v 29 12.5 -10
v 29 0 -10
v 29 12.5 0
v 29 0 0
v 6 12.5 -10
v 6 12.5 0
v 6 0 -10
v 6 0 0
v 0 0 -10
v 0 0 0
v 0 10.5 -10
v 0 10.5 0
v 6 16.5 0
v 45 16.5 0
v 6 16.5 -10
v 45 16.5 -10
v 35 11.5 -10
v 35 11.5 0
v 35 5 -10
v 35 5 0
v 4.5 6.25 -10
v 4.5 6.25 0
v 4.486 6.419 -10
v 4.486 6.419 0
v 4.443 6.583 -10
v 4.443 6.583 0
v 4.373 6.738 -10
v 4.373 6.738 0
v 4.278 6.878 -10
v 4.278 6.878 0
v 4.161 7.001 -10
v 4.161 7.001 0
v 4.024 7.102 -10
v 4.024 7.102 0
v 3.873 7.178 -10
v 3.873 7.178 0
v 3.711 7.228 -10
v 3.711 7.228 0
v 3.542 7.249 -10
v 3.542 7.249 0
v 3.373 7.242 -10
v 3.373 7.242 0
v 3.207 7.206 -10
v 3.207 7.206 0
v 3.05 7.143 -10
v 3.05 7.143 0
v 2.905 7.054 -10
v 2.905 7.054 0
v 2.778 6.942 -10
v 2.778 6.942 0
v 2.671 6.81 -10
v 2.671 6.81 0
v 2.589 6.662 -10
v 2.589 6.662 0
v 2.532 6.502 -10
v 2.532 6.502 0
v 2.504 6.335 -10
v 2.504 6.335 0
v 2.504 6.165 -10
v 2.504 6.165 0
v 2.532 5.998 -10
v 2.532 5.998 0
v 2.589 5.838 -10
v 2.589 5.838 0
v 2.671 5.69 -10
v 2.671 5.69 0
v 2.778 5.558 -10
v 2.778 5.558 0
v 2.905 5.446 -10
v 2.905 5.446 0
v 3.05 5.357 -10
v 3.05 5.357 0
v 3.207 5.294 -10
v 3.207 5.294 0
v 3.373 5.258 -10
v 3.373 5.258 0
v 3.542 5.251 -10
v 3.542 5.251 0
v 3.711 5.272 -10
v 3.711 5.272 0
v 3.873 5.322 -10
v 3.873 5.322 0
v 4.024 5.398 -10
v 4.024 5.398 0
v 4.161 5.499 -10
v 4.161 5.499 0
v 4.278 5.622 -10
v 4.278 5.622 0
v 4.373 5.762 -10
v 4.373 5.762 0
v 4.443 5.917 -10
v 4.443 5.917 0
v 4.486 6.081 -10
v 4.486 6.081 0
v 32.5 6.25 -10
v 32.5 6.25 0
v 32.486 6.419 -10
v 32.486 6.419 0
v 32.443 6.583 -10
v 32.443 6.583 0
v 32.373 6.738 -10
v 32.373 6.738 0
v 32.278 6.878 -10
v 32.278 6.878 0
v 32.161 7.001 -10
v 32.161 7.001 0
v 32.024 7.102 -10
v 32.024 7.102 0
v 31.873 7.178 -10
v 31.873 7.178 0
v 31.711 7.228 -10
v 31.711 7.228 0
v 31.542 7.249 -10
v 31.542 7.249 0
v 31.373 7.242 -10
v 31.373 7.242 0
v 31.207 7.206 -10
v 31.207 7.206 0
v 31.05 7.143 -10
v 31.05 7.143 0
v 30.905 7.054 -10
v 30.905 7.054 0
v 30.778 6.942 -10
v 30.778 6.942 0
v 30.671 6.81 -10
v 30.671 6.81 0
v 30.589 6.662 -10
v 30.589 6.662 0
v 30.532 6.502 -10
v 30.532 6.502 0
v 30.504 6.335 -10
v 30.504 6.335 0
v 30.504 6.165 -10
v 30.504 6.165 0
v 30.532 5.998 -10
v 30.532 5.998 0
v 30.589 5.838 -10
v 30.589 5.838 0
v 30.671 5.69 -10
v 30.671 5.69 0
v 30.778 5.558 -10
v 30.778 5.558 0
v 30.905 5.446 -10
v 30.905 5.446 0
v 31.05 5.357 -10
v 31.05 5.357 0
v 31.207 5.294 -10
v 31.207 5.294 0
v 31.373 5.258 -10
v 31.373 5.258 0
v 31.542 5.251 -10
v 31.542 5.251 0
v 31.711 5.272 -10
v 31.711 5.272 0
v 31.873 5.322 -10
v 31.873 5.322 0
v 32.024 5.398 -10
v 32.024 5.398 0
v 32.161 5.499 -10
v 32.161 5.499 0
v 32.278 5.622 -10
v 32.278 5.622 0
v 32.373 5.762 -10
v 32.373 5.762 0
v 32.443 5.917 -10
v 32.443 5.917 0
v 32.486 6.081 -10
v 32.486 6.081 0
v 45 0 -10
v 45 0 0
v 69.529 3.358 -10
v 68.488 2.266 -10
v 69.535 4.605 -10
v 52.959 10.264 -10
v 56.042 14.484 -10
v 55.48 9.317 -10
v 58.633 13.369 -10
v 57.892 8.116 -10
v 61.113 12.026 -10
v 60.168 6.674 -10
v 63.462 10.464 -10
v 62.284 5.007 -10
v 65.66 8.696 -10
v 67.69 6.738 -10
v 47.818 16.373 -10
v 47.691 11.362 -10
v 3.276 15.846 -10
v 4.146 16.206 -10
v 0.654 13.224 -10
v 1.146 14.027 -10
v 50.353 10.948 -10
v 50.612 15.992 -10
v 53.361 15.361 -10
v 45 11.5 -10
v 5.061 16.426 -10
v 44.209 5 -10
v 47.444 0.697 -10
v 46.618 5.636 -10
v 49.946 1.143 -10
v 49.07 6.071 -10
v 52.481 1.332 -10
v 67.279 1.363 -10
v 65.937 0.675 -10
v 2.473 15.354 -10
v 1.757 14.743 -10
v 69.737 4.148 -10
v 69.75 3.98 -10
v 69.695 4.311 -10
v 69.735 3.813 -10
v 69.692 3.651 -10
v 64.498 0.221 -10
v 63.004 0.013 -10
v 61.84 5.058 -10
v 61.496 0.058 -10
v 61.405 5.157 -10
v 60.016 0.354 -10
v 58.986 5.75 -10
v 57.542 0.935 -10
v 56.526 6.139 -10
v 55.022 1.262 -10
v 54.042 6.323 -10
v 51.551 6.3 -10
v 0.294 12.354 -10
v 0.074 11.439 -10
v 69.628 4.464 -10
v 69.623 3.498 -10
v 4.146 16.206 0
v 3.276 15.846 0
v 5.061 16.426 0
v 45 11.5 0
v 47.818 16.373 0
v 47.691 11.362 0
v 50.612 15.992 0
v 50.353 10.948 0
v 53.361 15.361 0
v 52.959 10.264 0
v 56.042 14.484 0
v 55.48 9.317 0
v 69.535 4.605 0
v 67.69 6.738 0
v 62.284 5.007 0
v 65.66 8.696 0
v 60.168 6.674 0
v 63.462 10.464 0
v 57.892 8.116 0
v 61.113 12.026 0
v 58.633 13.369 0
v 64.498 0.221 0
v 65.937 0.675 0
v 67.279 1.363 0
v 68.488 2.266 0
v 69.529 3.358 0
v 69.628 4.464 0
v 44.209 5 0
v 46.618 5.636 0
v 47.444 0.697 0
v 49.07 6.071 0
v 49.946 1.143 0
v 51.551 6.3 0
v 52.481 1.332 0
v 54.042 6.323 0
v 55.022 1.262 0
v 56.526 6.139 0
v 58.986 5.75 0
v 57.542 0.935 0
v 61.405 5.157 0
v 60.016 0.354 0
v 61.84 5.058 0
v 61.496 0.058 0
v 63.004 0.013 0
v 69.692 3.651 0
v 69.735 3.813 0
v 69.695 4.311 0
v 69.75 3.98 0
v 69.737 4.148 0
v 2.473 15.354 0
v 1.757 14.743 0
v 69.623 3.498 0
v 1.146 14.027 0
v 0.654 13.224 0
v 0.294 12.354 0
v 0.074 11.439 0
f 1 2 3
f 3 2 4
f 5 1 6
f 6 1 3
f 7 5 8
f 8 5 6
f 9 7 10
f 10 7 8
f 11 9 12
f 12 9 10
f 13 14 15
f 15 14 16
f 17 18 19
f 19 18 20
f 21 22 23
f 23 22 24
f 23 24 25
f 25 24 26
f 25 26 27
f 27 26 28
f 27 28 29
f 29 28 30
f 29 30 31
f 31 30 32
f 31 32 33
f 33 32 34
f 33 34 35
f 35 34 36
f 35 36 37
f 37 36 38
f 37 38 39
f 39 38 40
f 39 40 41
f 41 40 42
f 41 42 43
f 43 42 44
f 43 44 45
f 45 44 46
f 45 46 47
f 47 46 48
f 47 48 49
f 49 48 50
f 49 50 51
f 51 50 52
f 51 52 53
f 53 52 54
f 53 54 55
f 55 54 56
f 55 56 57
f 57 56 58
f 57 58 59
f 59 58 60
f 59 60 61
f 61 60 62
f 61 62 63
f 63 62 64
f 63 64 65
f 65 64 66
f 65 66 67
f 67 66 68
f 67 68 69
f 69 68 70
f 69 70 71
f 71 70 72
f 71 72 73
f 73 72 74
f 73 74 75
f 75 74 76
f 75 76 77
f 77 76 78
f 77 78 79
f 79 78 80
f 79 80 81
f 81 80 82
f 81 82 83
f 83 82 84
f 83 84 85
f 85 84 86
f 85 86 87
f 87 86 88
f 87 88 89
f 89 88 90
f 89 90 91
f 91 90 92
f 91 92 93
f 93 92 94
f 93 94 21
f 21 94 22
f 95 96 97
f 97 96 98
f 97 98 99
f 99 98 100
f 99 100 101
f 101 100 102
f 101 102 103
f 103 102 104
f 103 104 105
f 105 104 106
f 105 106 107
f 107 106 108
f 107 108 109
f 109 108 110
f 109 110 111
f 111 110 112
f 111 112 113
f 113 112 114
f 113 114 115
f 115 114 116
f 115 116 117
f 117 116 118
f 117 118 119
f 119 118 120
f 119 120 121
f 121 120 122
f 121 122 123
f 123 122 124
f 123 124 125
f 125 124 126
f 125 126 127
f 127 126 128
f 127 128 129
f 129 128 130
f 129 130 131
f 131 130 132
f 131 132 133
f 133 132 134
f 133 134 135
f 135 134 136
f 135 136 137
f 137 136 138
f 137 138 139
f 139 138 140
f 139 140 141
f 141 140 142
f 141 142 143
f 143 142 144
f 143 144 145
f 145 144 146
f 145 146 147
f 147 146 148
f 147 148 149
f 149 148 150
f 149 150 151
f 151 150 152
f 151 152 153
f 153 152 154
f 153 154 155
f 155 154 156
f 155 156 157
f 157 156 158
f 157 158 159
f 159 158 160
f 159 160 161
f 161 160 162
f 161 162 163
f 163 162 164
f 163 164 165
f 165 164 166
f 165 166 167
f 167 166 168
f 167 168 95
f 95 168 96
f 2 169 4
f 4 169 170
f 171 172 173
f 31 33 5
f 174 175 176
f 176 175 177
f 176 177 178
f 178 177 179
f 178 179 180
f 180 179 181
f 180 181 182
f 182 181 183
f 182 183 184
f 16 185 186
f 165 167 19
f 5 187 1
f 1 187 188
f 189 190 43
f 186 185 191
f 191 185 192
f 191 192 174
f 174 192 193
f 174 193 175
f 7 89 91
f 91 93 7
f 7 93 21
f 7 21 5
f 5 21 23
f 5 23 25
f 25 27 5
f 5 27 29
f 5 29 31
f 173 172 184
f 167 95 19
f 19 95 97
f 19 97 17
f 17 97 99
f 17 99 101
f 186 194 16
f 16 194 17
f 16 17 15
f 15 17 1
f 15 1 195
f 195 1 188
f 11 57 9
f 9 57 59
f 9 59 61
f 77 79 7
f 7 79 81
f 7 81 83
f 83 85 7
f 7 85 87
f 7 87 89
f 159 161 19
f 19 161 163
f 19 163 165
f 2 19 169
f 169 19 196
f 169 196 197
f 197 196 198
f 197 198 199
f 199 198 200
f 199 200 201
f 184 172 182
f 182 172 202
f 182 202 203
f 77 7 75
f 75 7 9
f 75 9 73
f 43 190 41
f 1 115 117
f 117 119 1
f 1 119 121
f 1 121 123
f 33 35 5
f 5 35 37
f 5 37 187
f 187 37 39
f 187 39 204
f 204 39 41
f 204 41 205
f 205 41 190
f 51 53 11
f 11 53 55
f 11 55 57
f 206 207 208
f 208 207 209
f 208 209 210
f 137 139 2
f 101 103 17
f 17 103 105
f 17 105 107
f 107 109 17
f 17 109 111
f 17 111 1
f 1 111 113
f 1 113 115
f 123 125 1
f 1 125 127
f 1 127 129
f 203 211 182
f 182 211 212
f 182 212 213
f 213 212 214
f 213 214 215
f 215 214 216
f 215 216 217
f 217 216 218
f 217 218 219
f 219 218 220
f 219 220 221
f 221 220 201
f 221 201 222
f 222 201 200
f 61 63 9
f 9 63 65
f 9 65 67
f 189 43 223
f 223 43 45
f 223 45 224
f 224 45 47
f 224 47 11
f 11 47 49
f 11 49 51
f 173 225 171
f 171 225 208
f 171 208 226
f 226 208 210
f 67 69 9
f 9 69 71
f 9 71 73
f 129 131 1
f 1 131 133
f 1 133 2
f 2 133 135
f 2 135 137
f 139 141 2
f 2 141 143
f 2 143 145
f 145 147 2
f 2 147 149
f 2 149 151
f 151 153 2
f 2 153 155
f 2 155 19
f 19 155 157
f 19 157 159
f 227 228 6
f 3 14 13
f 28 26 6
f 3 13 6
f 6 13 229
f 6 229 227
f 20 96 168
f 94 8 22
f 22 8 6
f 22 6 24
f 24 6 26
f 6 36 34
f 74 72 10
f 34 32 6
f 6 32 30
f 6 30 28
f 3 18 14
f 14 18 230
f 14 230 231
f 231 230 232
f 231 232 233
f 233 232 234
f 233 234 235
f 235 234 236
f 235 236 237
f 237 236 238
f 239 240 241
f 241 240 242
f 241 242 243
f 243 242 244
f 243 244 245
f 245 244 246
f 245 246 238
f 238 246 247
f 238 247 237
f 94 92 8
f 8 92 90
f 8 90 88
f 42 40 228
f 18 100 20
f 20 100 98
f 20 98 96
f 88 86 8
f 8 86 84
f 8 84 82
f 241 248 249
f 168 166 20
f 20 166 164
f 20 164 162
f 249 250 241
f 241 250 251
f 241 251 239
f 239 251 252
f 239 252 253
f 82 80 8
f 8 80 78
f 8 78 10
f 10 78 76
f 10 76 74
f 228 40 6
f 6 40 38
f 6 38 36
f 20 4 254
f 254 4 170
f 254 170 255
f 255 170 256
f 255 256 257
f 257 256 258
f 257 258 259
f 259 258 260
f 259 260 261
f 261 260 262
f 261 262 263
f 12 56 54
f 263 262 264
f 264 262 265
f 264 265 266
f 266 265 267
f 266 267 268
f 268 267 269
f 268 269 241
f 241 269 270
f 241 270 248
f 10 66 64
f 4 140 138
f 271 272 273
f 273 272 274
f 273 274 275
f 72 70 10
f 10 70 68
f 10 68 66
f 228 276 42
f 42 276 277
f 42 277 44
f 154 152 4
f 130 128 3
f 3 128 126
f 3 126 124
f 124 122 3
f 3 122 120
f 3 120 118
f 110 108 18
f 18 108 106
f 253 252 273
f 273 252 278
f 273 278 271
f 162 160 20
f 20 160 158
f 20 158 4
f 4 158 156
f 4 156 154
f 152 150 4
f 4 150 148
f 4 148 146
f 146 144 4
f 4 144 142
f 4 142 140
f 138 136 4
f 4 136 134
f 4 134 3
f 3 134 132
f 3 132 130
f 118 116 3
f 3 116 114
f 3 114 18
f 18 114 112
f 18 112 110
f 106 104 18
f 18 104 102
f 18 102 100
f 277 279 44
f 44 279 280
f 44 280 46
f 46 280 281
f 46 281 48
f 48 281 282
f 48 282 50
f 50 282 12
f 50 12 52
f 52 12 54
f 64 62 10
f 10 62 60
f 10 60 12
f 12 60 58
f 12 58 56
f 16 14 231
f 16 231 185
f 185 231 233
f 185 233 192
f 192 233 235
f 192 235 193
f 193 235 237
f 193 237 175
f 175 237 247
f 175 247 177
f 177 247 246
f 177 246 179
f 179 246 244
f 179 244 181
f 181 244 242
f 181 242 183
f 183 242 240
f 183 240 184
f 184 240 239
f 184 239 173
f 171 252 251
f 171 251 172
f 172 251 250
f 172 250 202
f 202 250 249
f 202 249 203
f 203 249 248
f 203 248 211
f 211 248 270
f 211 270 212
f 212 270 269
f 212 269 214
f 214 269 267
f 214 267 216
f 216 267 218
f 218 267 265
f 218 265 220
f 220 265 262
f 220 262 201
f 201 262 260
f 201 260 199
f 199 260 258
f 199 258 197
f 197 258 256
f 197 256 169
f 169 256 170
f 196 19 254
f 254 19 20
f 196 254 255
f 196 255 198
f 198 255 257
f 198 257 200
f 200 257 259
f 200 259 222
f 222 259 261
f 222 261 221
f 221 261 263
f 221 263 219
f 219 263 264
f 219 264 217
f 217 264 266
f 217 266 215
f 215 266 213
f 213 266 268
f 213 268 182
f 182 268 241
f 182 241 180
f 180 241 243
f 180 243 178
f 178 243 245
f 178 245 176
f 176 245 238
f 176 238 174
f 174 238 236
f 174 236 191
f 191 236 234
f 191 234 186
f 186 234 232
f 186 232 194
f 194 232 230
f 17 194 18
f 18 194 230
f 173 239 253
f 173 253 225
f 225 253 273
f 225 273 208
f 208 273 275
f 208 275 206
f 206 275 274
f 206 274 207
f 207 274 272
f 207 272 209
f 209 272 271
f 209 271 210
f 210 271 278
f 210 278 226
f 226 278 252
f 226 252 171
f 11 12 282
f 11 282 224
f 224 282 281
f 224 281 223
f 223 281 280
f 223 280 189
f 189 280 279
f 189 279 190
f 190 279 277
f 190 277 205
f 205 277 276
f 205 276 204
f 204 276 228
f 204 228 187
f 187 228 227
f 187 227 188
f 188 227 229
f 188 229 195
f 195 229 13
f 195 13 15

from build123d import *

# Parameters (mm, degrees)
CROQUIS1_R              = 1
SALIENTE_EXTRUIR1_DEPTH = 10
SALIENTE_EXTRUIR2_DEPTH = 10
REDONDEO1_R             = 1
REDONDEO2_R             = 6


with BuildPart() as part:
    # Croquis1 → Saliente-Extruir1 (new body)
    with BuildSketch(Plane.XY):
        Polygon((0, 0), (6, 0), (6, 12.5), (29, 12.5), (29, 0), (35, 0), (35, 16.5), (0, 16.5), align=None)
        with Locations((3.5, 6.25)):
            Circle(CROQUIS1_R, mode=Mode.SUBTRACT)
        with Locations((31.5, 6.25)):
            Circle(CROQUIS1_R, mode=Mode.SUBTRACT)
    extrude(amount=-SALIENTE_EXTRUIR1_DEPTH)

    # Croquis4 → Saliente-Extruir2 (add, through all)
    with BuildSketch(Plane.XY):
        with BuildLine():
            Line((45, 11.5), (35, 11.5))
            Line((35, 11.5), (35, 16.5))
            Line((35, 16.5), (45, 16.5))
            ThreePointArc((45, 16.5), (58.975424859, 13.200849719), (70, 4))
            ThreePointArc((70, 4), (65.603760626, 0.546008902), (60.016254104, 0.354316441))
            ThreePointArc((60.016254104, 0.354316441), (52.480888042, 1.331572321), (45, 0))
            Line((45, 0), (35, 0))
            Line((35, 0), (35, 5))
            Line((35, 5), (44.209457127, 5))
            ThreePointArc((44.209457127, 5), (52.795894624, 6.337270923), (61.405382505, 5.157473974))
            ThreePointArc((61.405382505, 5.157473974), (61.84041484, 5.057582168), (62.283868073, 5.006781226))
            ThreePointArc((62.283868073, 5.006781226), (54.231657294, 9.823135811), (45, 11.5))
        make_face()
    extrude(amount=-SALIENTE_EXTRUIR2_DEPTH)

    # Redondeo1
    redondeo1_edges = [part.edges().sort_by_distance(p)[0] for p in [
        (70, 4, -5),
    ]]
    fillet(redondeo1_edges, radius=REDONDEO1_R)

    # Redondeo2
    redondeo2_edges = [part.edges().sort_by_distance(p)[0] for p in [
        (0, 16.5, -5),
    ]]
    fillet(redondeo2_edges, radius=REDONDEO2_R)


solid = part.part
